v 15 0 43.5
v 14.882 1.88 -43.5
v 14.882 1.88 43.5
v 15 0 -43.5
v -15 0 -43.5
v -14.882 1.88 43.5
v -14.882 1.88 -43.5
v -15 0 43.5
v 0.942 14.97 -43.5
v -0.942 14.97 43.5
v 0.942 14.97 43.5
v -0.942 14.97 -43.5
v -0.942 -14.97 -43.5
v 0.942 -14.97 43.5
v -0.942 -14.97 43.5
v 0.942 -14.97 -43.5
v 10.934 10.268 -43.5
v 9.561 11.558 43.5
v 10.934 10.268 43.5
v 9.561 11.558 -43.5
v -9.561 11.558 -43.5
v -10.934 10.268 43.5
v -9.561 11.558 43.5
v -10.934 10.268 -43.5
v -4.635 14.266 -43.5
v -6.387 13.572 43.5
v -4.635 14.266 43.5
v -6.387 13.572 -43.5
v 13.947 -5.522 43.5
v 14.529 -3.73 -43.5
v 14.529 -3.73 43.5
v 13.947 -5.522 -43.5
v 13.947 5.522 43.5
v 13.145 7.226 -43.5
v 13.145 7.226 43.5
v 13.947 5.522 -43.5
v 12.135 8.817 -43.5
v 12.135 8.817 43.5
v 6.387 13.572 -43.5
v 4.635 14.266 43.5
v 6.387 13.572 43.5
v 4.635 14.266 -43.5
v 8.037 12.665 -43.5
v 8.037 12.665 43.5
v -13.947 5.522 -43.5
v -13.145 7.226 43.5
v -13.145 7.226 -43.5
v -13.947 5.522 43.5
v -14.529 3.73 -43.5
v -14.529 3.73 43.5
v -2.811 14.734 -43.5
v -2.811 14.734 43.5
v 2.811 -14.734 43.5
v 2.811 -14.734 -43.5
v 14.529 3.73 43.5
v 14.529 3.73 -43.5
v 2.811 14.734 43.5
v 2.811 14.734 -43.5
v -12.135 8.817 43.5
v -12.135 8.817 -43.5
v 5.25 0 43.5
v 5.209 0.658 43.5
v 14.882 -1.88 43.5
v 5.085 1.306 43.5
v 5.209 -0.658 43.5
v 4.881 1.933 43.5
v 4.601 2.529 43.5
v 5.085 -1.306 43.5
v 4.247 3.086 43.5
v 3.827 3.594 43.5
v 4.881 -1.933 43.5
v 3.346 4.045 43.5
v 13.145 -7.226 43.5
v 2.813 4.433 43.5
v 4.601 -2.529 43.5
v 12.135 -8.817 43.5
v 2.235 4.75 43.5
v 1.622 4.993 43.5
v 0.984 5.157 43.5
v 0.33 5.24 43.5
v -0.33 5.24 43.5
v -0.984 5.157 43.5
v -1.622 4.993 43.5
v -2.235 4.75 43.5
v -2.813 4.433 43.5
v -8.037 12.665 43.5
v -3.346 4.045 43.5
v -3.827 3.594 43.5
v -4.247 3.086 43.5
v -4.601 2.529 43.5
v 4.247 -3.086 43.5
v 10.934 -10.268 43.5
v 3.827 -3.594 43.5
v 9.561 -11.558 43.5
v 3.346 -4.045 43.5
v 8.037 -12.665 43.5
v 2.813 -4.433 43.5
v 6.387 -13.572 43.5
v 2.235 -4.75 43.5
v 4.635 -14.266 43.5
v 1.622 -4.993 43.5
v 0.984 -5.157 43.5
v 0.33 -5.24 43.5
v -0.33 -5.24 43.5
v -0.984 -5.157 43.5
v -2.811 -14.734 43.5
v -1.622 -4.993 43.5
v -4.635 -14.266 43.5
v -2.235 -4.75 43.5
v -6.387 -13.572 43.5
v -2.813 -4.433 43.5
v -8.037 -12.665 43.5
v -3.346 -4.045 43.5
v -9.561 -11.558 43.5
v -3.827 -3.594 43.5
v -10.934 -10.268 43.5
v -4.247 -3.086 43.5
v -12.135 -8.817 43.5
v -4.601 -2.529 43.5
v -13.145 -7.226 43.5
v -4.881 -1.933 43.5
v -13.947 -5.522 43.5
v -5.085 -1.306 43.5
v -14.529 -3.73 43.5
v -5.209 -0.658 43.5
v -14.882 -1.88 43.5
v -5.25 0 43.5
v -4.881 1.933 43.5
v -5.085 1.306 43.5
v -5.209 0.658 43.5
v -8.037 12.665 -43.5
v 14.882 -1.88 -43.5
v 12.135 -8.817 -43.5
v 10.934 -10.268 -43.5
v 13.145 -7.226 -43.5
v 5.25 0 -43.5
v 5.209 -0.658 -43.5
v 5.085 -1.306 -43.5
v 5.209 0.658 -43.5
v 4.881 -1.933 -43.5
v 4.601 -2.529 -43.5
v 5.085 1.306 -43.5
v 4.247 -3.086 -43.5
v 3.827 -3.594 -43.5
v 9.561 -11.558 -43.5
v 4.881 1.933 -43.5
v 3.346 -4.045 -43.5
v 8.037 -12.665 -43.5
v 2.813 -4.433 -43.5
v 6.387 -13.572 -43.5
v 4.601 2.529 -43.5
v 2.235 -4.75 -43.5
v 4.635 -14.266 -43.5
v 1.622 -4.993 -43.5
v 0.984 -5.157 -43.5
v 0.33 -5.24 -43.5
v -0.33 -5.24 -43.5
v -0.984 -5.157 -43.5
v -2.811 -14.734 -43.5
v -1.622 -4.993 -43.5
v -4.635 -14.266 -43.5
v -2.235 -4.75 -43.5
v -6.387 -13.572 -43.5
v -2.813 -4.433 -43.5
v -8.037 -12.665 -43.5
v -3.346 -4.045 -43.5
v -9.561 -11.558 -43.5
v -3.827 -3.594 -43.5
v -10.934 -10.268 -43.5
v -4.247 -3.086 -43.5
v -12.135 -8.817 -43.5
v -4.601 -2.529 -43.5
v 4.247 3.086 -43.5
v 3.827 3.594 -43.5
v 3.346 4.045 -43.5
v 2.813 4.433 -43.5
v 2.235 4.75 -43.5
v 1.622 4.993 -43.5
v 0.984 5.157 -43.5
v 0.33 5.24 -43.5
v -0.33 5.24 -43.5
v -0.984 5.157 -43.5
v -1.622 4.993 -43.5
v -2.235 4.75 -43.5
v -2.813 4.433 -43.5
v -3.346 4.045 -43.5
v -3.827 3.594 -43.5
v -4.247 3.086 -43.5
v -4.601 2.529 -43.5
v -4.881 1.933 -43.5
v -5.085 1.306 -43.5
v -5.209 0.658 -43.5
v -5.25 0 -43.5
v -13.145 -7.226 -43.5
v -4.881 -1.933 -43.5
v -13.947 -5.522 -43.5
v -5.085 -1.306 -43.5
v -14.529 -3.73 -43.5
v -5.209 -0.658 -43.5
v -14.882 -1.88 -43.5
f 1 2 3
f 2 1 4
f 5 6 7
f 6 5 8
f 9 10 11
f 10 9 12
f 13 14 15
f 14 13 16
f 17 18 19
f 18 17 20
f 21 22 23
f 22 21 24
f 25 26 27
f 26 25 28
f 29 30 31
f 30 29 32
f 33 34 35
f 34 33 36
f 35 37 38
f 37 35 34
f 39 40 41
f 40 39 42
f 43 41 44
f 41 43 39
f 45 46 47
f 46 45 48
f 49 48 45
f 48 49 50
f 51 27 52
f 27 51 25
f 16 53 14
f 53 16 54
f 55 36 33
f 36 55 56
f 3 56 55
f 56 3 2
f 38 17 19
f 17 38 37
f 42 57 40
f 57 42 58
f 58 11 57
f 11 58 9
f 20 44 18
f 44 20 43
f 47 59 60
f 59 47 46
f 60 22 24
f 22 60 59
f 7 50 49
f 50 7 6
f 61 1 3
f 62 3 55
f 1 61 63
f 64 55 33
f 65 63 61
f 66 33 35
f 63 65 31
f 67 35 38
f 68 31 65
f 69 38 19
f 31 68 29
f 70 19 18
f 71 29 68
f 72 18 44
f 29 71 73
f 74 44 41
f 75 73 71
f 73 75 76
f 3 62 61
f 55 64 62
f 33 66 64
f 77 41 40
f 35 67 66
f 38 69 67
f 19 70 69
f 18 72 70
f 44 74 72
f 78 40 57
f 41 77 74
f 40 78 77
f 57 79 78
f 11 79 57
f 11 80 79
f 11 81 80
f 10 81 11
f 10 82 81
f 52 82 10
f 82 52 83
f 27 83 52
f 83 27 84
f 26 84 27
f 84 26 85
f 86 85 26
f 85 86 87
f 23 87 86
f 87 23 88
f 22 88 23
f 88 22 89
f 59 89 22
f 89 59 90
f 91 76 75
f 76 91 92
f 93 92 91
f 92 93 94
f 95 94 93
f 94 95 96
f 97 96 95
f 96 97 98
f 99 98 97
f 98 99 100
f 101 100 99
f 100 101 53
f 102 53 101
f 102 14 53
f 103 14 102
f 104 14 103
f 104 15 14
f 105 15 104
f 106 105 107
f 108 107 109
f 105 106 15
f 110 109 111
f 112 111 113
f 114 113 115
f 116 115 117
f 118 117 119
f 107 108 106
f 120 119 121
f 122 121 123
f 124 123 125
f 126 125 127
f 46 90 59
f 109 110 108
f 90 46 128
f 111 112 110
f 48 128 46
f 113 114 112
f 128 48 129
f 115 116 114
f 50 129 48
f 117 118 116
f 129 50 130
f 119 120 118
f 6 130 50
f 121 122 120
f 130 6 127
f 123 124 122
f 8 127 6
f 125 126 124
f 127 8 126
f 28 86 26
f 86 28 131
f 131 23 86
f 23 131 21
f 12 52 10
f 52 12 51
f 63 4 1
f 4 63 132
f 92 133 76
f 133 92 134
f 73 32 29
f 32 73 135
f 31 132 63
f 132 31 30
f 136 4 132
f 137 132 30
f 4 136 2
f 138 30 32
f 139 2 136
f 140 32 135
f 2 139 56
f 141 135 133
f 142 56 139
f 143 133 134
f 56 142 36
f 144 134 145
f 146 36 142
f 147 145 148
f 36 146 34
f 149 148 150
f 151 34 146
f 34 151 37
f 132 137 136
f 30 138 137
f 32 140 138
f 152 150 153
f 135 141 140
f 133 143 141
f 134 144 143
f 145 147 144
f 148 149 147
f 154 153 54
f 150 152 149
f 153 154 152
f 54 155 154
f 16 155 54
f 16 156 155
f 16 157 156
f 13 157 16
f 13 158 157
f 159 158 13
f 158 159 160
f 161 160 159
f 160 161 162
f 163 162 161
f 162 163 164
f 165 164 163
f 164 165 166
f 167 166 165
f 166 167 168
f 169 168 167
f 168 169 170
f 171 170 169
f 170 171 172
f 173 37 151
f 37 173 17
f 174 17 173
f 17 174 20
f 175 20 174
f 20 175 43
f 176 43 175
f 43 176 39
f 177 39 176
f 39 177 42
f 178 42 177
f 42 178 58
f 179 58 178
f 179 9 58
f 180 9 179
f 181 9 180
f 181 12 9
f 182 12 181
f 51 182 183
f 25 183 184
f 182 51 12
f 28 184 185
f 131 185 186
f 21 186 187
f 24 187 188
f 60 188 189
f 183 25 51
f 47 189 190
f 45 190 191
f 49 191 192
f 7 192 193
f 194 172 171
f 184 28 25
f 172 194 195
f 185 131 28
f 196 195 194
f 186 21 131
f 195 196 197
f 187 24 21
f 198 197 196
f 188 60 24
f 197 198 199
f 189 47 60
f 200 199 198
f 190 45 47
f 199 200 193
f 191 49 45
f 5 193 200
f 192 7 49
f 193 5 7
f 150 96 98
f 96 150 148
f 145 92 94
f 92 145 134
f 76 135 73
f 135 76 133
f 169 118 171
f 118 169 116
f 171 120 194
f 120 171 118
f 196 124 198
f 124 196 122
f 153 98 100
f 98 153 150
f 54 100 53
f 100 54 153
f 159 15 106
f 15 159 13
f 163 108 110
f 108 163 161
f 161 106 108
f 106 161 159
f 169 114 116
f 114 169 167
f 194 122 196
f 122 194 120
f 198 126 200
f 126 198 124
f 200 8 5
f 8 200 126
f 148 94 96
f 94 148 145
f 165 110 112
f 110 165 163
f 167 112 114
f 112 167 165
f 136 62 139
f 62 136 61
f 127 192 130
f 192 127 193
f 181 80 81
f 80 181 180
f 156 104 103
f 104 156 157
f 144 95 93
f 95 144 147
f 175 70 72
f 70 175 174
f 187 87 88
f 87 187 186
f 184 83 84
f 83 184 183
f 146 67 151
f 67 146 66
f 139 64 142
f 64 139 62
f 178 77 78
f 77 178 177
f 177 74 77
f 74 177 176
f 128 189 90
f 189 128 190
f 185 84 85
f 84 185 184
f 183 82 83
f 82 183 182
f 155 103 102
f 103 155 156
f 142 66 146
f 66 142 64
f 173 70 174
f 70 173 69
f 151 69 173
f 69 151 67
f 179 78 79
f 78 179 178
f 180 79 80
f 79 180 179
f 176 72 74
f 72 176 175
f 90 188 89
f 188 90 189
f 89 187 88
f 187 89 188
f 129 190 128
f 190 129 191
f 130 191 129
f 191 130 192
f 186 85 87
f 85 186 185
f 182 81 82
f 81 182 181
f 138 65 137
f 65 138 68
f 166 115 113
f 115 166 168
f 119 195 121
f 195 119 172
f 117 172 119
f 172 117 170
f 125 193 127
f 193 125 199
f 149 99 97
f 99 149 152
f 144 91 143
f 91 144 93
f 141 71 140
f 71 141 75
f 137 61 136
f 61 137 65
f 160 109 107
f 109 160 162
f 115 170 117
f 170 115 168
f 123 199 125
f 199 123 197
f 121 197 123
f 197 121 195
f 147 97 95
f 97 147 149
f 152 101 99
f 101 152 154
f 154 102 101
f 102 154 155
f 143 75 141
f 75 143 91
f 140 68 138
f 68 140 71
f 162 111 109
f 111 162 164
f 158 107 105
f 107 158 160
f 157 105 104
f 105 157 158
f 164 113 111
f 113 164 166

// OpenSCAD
$fn = 50;


difference() {
	union() {
		translate(v = [0, 0, -43.5000000000]) {
			cylinder(h = 87, r = 15.0000000000);
		}
	}
	union() {
		translate(v = [0, 0, -100.0000000000]) {
			cylinder(h = 200, r = 5.2500000000);
		}
	}
}
